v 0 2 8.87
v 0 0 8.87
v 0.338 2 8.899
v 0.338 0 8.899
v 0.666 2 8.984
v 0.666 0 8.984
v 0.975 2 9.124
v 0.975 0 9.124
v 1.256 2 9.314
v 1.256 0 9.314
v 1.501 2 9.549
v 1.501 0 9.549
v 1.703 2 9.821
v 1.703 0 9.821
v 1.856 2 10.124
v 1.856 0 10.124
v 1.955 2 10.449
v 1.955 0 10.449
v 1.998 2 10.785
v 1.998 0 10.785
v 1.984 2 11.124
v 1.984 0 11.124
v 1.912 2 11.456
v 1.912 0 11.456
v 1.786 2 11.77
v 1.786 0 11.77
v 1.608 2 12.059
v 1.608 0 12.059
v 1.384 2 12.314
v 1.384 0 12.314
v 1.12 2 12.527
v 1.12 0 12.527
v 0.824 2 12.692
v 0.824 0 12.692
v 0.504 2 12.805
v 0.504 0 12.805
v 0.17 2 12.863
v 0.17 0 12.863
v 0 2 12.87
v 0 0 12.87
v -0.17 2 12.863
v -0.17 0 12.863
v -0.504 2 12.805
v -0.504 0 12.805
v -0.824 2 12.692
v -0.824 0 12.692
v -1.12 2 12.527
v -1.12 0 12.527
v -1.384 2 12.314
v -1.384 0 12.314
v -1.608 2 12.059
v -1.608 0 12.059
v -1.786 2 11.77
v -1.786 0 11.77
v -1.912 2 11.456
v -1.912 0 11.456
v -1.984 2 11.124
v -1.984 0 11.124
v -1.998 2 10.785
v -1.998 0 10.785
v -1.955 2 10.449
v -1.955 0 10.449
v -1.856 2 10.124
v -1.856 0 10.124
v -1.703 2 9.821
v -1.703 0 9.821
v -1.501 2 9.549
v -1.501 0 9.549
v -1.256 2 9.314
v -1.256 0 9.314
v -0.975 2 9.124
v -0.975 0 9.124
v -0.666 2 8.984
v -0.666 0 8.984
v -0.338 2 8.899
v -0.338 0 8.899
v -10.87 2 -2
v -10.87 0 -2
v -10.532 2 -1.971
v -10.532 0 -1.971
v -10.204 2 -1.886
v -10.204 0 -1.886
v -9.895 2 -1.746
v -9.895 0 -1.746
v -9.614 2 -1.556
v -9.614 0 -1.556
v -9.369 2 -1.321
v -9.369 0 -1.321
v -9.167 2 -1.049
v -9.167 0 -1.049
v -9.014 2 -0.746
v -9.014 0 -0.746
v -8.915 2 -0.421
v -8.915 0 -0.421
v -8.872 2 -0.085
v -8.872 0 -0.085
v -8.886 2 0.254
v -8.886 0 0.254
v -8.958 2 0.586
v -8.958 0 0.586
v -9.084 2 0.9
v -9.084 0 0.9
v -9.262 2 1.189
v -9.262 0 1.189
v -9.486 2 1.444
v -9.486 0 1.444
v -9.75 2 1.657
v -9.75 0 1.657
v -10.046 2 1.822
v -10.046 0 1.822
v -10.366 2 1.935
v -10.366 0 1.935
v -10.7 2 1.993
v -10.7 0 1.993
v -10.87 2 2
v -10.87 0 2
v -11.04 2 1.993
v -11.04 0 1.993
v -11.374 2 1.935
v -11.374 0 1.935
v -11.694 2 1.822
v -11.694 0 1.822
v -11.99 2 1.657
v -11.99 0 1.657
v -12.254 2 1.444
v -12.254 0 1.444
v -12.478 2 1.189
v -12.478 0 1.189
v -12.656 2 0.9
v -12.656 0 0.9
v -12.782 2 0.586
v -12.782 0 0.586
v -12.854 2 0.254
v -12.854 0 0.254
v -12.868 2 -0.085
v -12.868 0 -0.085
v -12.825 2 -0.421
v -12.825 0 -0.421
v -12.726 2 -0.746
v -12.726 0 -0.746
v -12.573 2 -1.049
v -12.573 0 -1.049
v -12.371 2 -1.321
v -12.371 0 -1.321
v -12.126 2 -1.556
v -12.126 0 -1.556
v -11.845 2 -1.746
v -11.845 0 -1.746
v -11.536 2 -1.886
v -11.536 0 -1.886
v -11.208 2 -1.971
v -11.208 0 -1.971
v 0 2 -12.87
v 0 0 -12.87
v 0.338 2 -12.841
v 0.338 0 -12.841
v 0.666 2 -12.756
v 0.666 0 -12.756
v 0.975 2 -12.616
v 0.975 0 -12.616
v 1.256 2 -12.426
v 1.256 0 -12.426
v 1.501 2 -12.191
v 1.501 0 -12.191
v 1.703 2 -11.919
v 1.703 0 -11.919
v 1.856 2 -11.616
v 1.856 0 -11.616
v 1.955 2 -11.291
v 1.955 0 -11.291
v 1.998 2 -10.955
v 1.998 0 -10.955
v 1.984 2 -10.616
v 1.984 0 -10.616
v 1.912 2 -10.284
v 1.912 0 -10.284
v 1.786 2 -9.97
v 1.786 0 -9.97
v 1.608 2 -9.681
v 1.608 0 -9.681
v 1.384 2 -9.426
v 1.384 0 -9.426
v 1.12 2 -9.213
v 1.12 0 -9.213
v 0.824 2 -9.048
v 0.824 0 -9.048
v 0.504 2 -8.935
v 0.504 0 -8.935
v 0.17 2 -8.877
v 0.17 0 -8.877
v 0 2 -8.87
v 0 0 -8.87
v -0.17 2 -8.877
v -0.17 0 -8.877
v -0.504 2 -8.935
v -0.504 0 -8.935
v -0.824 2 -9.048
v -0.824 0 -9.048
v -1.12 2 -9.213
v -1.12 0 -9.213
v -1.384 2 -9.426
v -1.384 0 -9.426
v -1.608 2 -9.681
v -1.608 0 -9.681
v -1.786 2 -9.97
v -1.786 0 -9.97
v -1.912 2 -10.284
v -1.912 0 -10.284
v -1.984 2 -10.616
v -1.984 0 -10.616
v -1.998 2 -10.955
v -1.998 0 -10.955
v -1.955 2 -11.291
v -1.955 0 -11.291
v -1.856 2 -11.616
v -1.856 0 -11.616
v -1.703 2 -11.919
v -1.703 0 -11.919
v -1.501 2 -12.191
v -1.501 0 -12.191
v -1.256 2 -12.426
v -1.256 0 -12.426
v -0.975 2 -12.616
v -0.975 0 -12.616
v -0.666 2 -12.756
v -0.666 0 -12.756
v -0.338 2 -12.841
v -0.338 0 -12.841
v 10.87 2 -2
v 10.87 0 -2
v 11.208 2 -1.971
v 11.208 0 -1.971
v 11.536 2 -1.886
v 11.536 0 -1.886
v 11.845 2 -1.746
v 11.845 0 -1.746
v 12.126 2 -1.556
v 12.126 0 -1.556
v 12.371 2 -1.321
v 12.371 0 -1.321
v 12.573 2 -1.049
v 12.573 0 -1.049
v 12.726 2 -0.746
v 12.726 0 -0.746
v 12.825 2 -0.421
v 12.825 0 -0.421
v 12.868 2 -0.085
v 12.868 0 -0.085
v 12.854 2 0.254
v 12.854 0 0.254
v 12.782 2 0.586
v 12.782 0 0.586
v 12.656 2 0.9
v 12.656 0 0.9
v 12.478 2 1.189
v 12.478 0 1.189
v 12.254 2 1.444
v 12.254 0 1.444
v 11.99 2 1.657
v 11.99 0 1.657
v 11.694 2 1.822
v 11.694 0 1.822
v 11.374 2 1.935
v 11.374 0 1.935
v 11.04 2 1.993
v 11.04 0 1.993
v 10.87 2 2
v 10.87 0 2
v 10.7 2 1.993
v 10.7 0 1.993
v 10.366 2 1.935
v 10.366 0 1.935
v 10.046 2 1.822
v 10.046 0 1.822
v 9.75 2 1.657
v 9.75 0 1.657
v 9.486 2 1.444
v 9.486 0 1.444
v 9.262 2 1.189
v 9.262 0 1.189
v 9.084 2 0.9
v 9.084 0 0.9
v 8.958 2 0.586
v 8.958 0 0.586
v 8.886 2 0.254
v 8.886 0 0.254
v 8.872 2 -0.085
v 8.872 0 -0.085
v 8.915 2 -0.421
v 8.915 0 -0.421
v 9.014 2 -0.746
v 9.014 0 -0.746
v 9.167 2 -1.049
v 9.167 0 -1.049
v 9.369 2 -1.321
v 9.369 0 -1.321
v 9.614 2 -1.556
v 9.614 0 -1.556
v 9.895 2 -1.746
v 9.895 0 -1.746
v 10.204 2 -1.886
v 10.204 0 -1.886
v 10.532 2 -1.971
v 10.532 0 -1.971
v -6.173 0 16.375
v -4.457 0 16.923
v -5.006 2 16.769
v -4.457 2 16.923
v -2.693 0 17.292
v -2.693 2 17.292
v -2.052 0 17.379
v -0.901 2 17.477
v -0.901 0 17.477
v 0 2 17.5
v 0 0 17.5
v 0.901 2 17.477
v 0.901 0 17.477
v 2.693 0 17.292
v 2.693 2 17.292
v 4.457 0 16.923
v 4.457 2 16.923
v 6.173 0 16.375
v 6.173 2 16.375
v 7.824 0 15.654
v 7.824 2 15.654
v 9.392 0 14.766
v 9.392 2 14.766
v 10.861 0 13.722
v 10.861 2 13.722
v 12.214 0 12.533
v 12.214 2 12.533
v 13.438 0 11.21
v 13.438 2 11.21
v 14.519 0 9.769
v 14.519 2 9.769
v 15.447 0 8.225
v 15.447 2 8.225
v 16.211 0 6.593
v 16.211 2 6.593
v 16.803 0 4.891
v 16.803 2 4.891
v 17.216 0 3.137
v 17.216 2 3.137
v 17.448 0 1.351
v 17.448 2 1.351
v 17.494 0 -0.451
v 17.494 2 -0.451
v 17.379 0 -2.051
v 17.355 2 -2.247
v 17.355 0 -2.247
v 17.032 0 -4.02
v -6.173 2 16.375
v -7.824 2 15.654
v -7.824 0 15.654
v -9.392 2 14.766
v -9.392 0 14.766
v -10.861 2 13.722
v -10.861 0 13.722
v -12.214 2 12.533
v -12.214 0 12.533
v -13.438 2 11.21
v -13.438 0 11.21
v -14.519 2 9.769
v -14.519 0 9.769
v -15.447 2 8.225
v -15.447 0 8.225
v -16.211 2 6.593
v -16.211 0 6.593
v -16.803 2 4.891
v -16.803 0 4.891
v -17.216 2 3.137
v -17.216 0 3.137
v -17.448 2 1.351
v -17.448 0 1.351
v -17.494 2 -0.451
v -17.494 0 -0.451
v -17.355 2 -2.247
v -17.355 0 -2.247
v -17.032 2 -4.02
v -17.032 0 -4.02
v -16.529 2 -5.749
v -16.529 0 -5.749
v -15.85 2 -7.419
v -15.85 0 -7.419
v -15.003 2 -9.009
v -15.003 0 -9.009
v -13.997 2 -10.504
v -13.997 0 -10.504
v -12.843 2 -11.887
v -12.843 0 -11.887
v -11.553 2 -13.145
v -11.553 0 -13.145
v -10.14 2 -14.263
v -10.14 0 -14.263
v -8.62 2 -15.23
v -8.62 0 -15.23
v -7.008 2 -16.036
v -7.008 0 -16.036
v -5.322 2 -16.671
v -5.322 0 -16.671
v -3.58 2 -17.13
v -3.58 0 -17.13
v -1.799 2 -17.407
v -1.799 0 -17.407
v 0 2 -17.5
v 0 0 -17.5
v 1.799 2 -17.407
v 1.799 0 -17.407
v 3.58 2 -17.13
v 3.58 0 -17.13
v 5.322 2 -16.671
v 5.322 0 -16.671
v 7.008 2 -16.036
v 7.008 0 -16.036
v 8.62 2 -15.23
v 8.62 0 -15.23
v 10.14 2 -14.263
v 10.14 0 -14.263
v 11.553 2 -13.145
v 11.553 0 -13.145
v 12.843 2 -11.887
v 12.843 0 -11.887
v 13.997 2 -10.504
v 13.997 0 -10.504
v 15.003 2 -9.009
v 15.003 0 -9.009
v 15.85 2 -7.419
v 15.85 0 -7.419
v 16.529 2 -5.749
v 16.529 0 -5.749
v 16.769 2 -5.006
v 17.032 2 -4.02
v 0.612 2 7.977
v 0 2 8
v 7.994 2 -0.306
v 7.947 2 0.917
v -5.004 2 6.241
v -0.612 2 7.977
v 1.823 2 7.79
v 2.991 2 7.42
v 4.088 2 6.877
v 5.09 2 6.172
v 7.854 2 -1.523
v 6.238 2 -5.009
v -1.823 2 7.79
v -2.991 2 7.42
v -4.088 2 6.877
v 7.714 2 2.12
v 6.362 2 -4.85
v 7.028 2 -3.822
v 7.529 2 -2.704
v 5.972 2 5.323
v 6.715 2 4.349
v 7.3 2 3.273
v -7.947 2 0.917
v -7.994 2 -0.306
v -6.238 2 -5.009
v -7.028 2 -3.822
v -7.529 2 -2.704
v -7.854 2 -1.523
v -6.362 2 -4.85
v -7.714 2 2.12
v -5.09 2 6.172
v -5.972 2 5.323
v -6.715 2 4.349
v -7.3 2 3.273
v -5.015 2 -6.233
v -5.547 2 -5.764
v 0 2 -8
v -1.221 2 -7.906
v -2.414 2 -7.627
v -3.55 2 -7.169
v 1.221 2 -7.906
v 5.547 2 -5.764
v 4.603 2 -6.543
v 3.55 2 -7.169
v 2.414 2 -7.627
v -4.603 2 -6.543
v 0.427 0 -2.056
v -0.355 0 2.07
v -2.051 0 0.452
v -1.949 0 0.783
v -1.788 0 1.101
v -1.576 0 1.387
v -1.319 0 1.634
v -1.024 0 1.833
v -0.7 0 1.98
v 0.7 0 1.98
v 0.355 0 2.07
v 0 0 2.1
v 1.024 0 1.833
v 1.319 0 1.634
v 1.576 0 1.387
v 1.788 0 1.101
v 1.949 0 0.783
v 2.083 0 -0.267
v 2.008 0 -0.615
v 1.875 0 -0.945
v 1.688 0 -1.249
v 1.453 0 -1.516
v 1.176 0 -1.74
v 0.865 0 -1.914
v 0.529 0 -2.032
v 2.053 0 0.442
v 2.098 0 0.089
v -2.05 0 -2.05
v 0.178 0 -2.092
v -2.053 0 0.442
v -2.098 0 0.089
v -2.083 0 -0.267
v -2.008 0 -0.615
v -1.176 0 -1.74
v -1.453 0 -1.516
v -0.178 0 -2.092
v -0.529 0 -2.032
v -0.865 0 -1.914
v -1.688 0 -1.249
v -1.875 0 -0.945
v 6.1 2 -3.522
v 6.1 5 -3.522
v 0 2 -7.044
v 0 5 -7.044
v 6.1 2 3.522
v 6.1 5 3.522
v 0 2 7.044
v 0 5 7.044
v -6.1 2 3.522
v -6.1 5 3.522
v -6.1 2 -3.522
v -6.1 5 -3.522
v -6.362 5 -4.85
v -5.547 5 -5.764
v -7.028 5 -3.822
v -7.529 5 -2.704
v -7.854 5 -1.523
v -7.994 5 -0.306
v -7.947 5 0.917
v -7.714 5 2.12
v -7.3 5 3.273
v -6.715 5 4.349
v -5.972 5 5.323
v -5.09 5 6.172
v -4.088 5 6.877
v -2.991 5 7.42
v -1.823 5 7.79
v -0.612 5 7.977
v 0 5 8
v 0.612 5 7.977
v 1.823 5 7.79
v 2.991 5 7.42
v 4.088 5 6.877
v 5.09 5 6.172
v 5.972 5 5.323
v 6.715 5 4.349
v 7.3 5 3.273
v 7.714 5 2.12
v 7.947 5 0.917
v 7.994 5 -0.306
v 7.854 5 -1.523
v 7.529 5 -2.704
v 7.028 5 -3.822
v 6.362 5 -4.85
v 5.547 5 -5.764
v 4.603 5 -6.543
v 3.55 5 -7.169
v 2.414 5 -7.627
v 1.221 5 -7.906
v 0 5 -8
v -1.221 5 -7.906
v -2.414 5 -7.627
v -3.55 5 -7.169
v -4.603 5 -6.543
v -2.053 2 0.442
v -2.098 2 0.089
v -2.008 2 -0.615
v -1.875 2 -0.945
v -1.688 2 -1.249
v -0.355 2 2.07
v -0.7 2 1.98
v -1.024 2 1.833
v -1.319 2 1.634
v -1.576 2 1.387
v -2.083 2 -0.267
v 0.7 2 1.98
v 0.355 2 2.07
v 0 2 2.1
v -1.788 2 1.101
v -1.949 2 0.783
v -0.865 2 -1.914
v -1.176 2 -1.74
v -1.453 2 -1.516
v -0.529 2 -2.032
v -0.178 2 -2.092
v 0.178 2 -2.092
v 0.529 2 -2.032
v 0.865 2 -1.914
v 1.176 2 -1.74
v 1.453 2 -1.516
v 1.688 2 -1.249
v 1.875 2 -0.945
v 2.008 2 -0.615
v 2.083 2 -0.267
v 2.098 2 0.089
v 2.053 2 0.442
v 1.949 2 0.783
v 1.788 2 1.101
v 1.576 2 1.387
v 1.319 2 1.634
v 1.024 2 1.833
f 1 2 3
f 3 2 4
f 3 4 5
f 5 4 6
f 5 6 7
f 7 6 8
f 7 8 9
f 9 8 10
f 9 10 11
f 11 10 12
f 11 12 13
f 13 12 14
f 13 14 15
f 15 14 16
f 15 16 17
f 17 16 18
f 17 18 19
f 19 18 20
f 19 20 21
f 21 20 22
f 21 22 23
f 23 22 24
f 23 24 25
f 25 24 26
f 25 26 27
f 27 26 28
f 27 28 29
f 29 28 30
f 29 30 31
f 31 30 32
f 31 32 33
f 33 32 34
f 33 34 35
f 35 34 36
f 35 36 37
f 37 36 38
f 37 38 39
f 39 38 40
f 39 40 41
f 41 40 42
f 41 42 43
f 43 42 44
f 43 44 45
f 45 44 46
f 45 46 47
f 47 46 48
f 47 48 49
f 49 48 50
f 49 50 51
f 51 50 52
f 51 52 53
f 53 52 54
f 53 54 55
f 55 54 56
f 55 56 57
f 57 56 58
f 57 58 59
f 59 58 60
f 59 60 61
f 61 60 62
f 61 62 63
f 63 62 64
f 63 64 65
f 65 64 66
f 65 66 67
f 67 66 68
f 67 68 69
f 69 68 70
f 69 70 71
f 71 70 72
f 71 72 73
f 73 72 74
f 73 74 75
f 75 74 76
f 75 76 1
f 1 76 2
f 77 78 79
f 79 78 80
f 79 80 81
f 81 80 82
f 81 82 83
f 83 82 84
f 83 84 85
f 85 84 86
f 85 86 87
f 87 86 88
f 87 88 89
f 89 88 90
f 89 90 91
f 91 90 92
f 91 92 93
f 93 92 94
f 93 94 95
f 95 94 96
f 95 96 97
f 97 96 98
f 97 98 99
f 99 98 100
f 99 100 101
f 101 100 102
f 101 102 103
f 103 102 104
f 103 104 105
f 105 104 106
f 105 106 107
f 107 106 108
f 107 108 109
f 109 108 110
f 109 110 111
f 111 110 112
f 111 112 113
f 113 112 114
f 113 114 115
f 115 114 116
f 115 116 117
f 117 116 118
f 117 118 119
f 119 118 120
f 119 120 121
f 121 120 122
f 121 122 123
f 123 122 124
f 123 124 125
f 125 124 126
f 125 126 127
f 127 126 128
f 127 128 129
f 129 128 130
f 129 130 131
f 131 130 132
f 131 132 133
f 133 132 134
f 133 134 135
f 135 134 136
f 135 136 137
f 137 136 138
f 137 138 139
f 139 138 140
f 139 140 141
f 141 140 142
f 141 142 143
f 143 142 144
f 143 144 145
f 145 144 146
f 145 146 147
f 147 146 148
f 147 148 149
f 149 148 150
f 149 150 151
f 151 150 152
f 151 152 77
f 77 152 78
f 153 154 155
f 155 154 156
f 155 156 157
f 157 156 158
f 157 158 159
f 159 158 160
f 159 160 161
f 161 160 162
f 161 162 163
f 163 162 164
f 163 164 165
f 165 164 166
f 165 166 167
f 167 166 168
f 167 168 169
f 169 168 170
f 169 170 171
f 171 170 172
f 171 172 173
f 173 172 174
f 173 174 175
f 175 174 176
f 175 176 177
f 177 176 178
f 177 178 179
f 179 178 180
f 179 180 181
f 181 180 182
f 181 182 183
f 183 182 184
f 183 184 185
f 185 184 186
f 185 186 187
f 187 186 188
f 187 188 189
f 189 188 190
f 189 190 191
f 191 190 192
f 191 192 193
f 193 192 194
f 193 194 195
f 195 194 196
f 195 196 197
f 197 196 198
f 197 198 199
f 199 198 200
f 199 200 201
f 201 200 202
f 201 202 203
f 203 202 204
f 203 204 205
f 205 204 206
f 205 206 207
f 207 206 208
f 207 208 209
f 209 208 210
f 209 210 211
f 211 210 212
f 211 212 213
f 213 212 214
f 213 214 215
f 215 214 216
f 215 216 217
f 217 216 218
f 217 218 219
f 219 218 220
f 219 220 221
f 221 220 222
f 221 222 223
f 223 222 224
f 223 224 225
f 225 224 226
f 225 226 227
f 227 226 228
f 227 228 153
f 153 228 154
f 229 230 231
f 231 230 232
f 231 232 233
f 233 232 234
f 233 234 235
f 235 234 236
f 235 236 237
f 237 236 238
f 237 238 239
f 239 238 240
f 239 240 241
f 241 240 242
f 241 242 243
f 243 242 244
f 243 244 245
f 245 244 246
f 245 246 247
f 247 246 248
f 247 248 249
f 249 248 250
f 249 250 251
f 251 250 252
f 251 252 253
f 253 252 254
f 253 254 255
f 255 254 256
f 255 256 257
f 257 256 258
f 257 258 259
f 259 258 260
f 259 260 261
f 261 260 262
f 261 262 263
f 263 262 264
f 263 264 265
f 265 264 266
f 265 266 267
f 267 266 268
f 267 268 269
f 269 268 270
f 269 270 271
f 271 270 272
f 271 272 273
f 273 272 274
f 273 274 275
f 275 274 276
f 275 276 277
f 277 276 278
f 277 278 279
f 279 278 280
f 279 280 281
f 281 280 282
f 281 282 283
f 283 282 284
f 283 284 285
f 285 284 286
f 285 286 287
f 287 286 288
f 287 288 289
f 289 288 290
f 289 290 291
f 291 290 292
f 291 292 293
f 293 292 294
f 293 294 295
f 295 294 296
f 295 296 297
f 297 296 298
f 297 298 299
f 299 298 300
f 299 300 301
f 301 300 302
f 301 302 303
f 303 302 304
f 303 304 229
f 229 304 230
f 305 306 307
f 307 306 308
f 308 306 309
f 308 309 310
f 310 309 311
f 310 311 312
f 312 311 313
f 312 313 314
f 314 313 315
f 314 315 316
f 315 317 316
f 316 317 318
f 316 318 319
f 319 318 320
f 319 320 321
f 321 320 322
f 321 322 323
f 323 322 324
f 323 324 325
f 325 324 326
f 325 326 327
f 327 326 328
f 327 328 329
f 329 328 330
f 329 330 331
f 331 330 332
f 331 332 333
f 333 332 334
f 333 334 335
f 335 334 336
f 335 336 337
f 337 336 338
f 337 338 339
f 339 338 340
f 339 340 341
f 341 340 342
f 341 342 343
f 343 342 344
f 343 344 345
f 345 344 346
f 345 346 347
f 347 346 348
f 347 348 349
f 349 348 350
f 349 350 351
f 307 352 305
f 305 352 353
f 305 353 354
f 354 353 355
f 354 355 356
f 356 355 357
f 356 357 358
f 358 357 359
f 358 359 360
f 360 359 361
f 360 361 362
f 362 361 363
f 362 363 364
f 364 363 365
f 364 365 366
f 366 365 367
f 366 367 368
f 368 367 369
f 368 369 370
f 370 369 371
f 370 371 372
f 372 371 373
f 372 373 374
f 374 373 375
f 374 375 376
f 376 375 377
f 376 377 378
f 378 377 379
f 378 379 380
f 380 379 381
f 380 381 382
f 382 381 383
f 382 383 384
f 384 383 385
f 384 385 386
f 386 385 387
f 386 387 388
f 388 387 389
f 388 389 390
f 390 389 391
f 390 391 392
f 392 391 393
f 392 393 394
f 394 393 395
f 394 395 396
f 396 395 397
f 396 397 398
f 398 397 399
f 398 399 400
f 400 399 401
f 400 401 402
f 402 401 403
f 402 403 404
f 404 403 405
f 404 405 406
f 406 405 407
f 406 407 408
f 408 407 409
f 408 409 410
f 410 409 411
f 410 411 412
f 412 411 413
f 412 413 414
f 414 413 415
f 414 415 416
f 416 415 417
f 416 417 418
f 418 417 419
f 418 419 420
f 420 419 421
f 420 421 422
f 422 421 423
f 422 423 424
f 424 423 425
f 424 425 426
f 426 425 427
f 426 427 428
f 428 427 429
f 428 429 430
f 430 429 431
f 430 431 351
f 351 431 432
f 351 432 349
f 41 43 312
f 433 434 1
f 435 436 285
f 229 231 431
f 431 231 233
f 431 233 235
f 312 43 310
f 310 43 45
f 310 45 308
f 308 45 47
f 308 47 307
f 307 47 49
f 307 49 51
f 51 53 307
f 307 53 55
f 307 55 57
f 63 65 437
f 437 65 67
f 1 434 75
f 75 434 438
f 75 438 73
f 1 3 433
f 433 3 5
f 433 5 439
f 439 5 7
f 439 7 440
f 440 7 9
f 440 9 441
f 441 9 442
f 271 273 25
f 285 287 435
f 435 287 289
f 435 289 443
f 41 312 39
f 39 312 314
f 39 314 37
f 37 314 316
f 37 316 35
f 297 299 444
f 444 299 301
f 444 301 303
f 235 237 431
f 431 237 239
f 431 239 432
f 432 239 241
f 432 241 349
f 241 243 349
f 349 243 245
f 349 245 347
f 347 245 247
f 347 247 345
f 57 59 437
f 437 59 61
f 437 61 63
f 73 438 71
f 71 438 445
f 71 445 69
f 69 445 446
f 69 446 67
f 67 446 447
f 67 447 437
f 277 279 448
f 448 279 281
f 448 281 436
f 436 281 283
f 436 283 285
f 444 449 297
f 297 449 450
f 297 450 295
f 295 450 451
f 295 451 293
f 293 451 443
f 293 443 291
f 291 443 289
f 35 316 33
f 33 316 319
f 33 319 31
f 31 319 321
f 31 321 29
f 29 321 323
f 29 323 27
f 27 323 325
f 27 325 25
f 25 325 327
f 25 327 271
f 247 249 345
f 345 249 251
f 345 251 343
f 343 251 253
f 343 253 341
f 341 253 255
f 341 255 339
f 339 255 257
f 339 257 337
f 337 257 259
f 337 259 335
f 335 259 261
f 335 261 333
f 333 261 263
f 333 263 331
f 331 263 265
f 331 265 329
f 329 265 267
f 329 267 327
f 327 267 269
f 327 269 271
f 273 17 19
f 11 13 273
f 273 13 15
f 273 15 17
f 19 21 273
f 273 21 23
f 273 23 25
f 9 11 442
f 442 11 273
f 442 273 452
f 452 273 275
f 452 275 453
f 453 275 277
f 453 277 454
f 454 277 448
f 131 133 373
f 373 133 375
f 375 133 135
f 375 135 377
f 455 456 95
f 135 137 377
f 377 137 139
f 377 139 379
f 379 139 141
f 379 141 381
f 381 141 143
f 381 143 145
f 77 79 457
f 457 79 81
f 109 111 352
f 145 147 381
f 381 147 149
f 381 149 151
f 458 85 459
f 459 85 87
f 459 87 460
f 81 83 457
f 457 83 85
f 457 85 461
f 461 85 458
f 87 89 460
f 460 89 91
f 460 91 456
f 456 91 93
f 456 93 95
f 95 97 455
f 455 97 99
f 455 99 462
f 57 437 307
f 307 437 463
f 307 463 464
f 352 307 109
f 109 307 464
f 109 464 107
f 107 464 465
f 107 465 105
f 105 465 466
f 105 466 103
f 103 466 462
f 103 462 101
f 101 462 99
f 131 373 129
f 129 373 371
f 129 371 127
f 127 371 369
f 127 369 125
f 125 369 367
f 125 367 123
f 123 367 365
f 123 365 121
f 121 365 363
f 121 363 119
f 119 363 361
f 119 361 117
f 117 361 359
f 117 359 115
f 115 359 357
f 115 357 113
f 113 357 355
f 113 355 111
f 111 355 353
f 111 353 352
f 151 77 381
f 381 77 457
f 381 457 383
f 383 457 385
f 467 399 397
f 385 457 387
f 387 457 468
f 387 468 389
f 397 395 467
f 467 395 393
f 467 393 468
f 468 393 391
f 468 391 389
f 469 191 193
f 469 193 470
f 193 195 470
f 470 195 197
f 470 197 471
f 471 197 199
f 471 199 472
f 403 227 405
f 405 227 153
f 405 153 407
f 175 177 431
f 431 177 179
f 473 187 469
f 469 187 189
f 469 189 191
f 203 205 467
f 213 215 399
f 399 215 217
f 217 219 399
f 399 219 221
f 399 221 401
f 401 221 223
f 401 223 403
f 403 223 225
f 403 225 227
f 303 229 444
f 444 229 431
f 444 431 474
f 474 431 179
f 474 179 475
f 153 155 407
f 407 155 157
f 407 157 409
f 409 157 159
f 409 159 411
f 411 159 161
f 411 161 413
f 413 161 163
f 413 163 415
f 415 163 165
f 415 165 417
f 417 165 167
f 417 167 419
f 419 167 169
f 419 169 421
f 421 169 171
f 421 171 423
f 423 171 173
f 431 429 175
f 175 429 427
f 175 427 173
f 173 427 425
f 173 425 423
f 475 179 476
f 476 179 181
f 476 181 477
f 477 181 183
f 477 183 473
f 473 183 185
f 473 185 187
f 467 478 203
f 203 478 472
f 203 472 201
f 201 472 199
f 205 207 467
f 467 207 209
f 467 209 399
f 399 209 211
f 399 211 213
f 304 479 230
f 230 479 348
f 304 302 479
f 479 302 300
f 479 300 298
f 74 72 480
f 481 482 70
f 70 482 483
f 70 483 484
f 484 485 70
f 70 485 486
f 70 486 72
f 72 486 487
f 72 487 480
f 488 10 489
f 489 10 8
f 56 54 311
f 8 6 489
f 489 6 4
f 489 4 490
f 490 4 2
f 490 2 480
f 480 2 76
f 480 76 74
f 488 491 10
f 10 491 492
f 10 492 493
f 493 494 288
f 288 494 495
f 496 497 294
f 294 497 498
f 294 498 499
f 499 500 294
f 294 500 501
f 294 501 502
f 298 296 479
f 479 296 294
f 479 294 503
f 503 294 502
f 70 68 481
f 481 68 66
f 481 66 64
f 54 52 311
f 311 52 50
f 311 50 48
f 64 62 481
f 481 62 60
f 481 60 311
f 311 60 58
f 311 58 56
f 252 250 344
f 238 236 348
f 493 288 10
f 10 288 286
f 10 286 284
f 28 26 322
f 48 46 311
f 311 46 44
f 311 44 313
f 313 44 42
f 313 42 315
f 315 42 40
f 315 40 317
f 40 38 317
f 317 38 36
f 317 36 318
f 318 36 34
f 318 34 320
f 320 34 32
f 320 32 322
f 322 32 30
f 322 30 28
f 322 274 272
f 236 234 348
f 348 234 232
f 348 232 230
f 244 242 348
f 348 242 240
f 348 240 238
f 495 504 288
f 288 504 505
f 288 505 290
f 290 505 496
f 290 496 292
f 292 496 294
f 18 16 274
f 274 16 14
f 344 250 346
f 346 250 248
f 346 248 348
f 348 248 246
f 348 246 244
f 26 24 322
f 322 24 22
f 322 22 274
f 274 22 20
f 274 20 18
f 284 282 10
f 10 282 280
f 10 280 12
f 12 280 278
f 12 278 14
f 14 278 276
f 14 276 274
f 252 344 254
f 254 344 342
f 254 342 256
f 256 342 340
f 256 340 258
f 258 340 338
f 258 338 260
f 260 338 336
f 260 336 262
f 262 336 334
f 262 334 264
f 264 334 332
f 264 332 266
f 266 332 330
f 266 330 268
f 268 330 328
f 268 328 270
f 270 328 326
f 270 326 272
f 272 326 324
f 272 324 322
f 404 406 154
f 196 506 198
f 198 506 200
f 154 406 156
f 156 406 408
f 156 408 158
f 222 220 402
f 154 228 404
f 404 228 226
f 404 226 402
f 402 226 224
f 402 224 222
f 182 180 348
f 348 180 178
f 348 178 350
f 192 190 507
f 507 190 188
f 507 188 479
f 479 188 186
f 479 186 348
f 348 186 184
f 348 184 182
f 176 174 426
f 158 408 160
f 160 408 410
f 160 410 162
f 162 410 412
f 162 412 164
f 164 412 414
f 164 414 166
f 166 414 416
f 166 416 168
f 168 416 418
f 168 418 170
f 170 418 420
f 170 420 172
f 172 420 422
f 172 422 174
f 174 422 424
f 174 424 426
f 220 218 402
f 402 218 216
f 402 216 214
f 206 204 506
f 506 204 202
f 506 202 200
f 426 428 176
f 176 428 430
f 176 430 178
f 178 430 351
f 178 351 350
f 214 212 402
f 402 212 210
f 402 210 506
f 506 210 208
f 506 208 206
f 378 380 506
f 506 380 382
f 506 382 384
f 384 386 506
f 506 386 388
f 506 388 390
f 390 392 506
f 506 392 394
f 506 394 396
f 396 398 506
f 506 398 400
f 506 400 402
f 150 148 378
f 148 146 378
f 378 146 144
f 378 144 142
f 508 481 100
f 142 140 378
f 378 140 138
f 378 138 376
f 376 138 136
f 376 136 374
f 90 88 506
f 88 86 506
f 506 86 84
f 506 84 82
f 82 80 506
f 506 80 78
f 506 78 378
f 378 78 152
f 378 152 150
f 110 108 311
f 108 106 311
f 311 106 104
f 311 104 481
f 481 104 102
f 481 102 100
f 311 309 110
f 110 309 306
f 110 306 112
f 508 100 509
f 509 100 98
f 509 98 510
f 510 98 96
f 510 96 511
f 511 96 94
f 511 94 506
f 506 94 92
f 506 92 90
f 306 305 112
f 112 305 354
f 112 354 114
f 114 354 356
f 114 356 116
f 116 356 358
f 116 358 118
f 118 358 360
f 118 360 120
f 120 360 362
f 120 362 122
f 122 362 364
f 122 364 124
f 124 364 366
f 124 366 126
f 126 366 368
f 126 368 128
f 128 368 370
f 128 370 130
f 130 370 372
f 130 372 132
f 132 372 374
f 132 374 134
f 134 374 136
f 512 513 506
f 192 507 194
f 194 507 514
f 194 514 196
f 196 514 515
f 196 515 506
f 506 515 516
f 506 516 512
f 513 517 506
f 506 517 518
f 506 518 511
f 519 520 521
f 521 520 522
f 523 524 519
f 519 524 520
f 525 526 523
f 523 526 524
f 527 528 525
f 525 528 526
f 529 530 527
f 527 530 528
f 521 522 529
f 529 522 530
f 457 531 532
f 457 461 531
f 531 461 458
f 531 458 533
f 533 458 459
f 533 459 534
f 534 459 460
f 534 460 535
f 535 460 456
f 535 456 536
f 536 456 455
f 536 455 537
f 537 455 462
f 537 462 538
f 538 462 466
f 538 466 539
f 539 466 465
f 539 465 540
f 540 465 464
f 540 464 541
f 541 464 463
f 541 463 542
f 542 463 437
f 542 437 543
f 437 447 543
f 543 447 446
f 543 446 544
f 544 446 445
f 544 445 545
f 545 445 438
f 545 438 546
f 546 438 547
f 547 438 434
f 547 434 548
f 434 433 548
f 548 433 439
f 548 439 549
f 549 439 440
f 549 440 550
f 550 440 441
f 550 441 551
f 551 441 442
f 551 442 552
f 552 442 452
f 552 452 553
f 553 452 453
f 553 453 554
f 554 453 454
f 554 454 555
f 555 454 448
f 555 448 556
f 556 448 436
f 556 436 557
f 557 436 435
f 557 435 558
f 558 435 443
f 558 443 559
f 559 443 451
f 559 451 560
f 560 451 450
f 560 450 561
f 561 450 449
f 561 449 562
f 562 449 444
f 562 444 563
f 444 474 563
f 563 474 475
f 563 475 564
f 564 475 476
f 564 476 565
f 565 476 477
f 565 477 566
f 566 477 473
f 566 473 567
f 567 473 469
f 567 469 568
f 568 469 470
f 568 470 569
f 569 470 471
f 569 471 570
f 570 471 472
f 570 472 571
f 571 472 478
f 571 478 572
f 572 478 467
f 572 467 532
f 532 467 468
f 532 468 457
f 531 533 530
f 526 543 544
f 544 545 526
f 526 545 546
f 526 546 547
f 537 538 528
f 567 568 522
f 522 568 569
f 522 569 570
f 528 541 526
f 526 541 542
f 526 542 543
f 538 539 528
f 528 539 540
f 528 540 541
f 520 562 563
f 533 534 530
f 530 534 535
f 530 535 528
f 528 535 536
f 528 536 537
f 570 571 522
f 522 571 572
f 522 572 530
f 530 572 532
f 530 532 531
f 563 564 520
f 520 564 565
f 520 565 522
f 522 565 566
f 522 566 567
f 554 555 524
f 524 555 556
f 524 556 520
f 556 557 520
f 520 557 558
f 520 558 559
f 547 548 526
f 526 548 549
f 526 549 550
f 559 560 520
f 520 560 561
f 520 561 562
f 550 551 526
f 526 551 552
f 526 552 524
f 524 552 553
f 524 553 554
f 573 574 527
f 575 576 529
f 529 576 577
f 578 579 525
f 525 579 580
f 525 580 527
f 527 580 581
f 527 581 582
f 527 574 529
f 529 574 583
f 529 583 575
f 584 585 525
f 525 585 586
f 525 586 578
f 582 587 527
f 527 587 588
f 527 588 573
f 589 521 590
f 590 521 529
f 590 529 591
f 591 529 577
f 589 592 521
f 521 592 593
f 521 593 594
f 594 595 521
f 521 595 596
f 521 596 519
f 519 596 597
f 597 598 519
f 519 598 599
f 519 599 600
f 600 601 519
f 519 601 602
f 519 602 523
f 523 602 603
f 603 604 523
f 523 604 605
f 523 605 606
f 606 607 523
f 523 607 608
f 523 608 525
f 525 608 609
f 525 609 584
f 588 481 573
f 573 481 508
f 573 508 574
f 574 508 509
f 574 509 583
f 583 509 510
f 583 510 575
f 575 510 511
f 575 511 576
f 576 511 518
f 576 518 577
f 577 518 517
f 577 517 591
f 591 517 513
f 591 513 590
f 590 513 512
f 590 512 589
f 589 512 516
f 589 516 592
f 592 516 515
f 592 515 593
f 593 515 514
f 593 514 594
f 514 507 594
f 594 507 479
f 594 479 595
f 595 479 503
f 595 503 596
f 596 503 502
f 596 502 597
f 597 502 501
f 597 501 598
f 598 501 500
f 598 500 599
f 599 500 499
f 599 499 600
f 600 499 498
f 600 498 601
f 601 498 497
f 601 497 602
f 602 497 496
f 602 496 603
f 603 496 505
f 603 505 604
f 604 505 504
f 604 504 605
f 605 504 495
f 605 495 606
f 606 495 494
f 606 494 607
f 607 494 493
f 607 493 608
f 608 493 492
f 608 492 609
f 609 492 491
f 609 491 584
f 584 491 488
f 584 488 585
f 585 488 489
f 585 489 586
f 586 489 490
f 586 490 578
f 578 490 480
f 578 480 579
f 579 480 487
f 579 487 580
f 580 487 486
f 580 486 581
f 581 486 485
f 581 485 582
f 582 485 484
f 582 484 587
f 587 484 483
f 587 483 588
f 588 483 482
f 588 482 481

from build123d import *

# Parameters (mm, degrees)
SKETCH4_R               = 17.5
SKETCH4_R_2             = 2
BOSS_EXTRUDE1_DEPTH     = 2
SKETCH5_R               = 8
BOSS_EXTRUDE2_DEPTH     = 5
SKETCH6_R               = 2.1
CUT_EXTRUDE1_DEPTH      = 6
CUT_EXTRUDE1_DEPTH_BACK = 1


with BuildPart() as part:
    # Sketch4 → Boss-Extrude1 (new body)
    with BuildSketch(Plane(origin=(0, 0, 0), x_dir=(1, 0, 0), z_dir=(0, 1, 0))):
        Circle(SKETCH4_R)
        with Locations((10.87, 0)):
            Circle(SKETCH4_R_2, mode=Mode.SUBTRACT)
        with Locations((0, -10.87)):
            Circle(SKETCH4_R_2, mode=Mode.SUBTRACT)
        with Locations((-10.87, 0)):
            Circle(SKETCH4_R_2, mode=Mode.SUBTRACT)
        with Locations((0, 10.87)):
            Circle(SKETCH4_R_2, mode=Mode.SUBTRACT)
    extrude(amount=BOSS_EXTRUDE1_DEPTH)

    # Sketch5 → Boss-Extrude2 (add)
    with BuildSketch(Plane(origin=(0, 0, 0), x_dir=(-1, 0, 0), z_dir=(0, 1, 0))):
        Circle(SKETCH5_R)
        Polygon((-6.1, -3.521836642), (0, -7.043673284), (6.1, -3.521836642), (6.1, 3.521836642), (0, 7.043673284), (-6.1, 3.521836642), align=None, mode=Mode.SUBTRACT)
    extrude(amount=BOSS_EXTRUDE2_DEPTH)

    # Sketch6 → Cut-Extrude1 (cut, two sides)
    with BuildSketch(Plane(origin=(0, 0, 0), x_dir=(1, 0, 0), z_dir=(0, 1, 0))) as cut_extrude1_sk:
        Circle(SKETCH6_R)
    extrude(amount=CUT_EXTRUDE1_DEPTH, mode=Mode.SUBTRACT)
    extrude(cut_extrude1_sk.sketch, amount=-CUT_EXTRUDE1_DEPTH_BACK, mode=Mode.SUBTRACT)


solid = part.part
